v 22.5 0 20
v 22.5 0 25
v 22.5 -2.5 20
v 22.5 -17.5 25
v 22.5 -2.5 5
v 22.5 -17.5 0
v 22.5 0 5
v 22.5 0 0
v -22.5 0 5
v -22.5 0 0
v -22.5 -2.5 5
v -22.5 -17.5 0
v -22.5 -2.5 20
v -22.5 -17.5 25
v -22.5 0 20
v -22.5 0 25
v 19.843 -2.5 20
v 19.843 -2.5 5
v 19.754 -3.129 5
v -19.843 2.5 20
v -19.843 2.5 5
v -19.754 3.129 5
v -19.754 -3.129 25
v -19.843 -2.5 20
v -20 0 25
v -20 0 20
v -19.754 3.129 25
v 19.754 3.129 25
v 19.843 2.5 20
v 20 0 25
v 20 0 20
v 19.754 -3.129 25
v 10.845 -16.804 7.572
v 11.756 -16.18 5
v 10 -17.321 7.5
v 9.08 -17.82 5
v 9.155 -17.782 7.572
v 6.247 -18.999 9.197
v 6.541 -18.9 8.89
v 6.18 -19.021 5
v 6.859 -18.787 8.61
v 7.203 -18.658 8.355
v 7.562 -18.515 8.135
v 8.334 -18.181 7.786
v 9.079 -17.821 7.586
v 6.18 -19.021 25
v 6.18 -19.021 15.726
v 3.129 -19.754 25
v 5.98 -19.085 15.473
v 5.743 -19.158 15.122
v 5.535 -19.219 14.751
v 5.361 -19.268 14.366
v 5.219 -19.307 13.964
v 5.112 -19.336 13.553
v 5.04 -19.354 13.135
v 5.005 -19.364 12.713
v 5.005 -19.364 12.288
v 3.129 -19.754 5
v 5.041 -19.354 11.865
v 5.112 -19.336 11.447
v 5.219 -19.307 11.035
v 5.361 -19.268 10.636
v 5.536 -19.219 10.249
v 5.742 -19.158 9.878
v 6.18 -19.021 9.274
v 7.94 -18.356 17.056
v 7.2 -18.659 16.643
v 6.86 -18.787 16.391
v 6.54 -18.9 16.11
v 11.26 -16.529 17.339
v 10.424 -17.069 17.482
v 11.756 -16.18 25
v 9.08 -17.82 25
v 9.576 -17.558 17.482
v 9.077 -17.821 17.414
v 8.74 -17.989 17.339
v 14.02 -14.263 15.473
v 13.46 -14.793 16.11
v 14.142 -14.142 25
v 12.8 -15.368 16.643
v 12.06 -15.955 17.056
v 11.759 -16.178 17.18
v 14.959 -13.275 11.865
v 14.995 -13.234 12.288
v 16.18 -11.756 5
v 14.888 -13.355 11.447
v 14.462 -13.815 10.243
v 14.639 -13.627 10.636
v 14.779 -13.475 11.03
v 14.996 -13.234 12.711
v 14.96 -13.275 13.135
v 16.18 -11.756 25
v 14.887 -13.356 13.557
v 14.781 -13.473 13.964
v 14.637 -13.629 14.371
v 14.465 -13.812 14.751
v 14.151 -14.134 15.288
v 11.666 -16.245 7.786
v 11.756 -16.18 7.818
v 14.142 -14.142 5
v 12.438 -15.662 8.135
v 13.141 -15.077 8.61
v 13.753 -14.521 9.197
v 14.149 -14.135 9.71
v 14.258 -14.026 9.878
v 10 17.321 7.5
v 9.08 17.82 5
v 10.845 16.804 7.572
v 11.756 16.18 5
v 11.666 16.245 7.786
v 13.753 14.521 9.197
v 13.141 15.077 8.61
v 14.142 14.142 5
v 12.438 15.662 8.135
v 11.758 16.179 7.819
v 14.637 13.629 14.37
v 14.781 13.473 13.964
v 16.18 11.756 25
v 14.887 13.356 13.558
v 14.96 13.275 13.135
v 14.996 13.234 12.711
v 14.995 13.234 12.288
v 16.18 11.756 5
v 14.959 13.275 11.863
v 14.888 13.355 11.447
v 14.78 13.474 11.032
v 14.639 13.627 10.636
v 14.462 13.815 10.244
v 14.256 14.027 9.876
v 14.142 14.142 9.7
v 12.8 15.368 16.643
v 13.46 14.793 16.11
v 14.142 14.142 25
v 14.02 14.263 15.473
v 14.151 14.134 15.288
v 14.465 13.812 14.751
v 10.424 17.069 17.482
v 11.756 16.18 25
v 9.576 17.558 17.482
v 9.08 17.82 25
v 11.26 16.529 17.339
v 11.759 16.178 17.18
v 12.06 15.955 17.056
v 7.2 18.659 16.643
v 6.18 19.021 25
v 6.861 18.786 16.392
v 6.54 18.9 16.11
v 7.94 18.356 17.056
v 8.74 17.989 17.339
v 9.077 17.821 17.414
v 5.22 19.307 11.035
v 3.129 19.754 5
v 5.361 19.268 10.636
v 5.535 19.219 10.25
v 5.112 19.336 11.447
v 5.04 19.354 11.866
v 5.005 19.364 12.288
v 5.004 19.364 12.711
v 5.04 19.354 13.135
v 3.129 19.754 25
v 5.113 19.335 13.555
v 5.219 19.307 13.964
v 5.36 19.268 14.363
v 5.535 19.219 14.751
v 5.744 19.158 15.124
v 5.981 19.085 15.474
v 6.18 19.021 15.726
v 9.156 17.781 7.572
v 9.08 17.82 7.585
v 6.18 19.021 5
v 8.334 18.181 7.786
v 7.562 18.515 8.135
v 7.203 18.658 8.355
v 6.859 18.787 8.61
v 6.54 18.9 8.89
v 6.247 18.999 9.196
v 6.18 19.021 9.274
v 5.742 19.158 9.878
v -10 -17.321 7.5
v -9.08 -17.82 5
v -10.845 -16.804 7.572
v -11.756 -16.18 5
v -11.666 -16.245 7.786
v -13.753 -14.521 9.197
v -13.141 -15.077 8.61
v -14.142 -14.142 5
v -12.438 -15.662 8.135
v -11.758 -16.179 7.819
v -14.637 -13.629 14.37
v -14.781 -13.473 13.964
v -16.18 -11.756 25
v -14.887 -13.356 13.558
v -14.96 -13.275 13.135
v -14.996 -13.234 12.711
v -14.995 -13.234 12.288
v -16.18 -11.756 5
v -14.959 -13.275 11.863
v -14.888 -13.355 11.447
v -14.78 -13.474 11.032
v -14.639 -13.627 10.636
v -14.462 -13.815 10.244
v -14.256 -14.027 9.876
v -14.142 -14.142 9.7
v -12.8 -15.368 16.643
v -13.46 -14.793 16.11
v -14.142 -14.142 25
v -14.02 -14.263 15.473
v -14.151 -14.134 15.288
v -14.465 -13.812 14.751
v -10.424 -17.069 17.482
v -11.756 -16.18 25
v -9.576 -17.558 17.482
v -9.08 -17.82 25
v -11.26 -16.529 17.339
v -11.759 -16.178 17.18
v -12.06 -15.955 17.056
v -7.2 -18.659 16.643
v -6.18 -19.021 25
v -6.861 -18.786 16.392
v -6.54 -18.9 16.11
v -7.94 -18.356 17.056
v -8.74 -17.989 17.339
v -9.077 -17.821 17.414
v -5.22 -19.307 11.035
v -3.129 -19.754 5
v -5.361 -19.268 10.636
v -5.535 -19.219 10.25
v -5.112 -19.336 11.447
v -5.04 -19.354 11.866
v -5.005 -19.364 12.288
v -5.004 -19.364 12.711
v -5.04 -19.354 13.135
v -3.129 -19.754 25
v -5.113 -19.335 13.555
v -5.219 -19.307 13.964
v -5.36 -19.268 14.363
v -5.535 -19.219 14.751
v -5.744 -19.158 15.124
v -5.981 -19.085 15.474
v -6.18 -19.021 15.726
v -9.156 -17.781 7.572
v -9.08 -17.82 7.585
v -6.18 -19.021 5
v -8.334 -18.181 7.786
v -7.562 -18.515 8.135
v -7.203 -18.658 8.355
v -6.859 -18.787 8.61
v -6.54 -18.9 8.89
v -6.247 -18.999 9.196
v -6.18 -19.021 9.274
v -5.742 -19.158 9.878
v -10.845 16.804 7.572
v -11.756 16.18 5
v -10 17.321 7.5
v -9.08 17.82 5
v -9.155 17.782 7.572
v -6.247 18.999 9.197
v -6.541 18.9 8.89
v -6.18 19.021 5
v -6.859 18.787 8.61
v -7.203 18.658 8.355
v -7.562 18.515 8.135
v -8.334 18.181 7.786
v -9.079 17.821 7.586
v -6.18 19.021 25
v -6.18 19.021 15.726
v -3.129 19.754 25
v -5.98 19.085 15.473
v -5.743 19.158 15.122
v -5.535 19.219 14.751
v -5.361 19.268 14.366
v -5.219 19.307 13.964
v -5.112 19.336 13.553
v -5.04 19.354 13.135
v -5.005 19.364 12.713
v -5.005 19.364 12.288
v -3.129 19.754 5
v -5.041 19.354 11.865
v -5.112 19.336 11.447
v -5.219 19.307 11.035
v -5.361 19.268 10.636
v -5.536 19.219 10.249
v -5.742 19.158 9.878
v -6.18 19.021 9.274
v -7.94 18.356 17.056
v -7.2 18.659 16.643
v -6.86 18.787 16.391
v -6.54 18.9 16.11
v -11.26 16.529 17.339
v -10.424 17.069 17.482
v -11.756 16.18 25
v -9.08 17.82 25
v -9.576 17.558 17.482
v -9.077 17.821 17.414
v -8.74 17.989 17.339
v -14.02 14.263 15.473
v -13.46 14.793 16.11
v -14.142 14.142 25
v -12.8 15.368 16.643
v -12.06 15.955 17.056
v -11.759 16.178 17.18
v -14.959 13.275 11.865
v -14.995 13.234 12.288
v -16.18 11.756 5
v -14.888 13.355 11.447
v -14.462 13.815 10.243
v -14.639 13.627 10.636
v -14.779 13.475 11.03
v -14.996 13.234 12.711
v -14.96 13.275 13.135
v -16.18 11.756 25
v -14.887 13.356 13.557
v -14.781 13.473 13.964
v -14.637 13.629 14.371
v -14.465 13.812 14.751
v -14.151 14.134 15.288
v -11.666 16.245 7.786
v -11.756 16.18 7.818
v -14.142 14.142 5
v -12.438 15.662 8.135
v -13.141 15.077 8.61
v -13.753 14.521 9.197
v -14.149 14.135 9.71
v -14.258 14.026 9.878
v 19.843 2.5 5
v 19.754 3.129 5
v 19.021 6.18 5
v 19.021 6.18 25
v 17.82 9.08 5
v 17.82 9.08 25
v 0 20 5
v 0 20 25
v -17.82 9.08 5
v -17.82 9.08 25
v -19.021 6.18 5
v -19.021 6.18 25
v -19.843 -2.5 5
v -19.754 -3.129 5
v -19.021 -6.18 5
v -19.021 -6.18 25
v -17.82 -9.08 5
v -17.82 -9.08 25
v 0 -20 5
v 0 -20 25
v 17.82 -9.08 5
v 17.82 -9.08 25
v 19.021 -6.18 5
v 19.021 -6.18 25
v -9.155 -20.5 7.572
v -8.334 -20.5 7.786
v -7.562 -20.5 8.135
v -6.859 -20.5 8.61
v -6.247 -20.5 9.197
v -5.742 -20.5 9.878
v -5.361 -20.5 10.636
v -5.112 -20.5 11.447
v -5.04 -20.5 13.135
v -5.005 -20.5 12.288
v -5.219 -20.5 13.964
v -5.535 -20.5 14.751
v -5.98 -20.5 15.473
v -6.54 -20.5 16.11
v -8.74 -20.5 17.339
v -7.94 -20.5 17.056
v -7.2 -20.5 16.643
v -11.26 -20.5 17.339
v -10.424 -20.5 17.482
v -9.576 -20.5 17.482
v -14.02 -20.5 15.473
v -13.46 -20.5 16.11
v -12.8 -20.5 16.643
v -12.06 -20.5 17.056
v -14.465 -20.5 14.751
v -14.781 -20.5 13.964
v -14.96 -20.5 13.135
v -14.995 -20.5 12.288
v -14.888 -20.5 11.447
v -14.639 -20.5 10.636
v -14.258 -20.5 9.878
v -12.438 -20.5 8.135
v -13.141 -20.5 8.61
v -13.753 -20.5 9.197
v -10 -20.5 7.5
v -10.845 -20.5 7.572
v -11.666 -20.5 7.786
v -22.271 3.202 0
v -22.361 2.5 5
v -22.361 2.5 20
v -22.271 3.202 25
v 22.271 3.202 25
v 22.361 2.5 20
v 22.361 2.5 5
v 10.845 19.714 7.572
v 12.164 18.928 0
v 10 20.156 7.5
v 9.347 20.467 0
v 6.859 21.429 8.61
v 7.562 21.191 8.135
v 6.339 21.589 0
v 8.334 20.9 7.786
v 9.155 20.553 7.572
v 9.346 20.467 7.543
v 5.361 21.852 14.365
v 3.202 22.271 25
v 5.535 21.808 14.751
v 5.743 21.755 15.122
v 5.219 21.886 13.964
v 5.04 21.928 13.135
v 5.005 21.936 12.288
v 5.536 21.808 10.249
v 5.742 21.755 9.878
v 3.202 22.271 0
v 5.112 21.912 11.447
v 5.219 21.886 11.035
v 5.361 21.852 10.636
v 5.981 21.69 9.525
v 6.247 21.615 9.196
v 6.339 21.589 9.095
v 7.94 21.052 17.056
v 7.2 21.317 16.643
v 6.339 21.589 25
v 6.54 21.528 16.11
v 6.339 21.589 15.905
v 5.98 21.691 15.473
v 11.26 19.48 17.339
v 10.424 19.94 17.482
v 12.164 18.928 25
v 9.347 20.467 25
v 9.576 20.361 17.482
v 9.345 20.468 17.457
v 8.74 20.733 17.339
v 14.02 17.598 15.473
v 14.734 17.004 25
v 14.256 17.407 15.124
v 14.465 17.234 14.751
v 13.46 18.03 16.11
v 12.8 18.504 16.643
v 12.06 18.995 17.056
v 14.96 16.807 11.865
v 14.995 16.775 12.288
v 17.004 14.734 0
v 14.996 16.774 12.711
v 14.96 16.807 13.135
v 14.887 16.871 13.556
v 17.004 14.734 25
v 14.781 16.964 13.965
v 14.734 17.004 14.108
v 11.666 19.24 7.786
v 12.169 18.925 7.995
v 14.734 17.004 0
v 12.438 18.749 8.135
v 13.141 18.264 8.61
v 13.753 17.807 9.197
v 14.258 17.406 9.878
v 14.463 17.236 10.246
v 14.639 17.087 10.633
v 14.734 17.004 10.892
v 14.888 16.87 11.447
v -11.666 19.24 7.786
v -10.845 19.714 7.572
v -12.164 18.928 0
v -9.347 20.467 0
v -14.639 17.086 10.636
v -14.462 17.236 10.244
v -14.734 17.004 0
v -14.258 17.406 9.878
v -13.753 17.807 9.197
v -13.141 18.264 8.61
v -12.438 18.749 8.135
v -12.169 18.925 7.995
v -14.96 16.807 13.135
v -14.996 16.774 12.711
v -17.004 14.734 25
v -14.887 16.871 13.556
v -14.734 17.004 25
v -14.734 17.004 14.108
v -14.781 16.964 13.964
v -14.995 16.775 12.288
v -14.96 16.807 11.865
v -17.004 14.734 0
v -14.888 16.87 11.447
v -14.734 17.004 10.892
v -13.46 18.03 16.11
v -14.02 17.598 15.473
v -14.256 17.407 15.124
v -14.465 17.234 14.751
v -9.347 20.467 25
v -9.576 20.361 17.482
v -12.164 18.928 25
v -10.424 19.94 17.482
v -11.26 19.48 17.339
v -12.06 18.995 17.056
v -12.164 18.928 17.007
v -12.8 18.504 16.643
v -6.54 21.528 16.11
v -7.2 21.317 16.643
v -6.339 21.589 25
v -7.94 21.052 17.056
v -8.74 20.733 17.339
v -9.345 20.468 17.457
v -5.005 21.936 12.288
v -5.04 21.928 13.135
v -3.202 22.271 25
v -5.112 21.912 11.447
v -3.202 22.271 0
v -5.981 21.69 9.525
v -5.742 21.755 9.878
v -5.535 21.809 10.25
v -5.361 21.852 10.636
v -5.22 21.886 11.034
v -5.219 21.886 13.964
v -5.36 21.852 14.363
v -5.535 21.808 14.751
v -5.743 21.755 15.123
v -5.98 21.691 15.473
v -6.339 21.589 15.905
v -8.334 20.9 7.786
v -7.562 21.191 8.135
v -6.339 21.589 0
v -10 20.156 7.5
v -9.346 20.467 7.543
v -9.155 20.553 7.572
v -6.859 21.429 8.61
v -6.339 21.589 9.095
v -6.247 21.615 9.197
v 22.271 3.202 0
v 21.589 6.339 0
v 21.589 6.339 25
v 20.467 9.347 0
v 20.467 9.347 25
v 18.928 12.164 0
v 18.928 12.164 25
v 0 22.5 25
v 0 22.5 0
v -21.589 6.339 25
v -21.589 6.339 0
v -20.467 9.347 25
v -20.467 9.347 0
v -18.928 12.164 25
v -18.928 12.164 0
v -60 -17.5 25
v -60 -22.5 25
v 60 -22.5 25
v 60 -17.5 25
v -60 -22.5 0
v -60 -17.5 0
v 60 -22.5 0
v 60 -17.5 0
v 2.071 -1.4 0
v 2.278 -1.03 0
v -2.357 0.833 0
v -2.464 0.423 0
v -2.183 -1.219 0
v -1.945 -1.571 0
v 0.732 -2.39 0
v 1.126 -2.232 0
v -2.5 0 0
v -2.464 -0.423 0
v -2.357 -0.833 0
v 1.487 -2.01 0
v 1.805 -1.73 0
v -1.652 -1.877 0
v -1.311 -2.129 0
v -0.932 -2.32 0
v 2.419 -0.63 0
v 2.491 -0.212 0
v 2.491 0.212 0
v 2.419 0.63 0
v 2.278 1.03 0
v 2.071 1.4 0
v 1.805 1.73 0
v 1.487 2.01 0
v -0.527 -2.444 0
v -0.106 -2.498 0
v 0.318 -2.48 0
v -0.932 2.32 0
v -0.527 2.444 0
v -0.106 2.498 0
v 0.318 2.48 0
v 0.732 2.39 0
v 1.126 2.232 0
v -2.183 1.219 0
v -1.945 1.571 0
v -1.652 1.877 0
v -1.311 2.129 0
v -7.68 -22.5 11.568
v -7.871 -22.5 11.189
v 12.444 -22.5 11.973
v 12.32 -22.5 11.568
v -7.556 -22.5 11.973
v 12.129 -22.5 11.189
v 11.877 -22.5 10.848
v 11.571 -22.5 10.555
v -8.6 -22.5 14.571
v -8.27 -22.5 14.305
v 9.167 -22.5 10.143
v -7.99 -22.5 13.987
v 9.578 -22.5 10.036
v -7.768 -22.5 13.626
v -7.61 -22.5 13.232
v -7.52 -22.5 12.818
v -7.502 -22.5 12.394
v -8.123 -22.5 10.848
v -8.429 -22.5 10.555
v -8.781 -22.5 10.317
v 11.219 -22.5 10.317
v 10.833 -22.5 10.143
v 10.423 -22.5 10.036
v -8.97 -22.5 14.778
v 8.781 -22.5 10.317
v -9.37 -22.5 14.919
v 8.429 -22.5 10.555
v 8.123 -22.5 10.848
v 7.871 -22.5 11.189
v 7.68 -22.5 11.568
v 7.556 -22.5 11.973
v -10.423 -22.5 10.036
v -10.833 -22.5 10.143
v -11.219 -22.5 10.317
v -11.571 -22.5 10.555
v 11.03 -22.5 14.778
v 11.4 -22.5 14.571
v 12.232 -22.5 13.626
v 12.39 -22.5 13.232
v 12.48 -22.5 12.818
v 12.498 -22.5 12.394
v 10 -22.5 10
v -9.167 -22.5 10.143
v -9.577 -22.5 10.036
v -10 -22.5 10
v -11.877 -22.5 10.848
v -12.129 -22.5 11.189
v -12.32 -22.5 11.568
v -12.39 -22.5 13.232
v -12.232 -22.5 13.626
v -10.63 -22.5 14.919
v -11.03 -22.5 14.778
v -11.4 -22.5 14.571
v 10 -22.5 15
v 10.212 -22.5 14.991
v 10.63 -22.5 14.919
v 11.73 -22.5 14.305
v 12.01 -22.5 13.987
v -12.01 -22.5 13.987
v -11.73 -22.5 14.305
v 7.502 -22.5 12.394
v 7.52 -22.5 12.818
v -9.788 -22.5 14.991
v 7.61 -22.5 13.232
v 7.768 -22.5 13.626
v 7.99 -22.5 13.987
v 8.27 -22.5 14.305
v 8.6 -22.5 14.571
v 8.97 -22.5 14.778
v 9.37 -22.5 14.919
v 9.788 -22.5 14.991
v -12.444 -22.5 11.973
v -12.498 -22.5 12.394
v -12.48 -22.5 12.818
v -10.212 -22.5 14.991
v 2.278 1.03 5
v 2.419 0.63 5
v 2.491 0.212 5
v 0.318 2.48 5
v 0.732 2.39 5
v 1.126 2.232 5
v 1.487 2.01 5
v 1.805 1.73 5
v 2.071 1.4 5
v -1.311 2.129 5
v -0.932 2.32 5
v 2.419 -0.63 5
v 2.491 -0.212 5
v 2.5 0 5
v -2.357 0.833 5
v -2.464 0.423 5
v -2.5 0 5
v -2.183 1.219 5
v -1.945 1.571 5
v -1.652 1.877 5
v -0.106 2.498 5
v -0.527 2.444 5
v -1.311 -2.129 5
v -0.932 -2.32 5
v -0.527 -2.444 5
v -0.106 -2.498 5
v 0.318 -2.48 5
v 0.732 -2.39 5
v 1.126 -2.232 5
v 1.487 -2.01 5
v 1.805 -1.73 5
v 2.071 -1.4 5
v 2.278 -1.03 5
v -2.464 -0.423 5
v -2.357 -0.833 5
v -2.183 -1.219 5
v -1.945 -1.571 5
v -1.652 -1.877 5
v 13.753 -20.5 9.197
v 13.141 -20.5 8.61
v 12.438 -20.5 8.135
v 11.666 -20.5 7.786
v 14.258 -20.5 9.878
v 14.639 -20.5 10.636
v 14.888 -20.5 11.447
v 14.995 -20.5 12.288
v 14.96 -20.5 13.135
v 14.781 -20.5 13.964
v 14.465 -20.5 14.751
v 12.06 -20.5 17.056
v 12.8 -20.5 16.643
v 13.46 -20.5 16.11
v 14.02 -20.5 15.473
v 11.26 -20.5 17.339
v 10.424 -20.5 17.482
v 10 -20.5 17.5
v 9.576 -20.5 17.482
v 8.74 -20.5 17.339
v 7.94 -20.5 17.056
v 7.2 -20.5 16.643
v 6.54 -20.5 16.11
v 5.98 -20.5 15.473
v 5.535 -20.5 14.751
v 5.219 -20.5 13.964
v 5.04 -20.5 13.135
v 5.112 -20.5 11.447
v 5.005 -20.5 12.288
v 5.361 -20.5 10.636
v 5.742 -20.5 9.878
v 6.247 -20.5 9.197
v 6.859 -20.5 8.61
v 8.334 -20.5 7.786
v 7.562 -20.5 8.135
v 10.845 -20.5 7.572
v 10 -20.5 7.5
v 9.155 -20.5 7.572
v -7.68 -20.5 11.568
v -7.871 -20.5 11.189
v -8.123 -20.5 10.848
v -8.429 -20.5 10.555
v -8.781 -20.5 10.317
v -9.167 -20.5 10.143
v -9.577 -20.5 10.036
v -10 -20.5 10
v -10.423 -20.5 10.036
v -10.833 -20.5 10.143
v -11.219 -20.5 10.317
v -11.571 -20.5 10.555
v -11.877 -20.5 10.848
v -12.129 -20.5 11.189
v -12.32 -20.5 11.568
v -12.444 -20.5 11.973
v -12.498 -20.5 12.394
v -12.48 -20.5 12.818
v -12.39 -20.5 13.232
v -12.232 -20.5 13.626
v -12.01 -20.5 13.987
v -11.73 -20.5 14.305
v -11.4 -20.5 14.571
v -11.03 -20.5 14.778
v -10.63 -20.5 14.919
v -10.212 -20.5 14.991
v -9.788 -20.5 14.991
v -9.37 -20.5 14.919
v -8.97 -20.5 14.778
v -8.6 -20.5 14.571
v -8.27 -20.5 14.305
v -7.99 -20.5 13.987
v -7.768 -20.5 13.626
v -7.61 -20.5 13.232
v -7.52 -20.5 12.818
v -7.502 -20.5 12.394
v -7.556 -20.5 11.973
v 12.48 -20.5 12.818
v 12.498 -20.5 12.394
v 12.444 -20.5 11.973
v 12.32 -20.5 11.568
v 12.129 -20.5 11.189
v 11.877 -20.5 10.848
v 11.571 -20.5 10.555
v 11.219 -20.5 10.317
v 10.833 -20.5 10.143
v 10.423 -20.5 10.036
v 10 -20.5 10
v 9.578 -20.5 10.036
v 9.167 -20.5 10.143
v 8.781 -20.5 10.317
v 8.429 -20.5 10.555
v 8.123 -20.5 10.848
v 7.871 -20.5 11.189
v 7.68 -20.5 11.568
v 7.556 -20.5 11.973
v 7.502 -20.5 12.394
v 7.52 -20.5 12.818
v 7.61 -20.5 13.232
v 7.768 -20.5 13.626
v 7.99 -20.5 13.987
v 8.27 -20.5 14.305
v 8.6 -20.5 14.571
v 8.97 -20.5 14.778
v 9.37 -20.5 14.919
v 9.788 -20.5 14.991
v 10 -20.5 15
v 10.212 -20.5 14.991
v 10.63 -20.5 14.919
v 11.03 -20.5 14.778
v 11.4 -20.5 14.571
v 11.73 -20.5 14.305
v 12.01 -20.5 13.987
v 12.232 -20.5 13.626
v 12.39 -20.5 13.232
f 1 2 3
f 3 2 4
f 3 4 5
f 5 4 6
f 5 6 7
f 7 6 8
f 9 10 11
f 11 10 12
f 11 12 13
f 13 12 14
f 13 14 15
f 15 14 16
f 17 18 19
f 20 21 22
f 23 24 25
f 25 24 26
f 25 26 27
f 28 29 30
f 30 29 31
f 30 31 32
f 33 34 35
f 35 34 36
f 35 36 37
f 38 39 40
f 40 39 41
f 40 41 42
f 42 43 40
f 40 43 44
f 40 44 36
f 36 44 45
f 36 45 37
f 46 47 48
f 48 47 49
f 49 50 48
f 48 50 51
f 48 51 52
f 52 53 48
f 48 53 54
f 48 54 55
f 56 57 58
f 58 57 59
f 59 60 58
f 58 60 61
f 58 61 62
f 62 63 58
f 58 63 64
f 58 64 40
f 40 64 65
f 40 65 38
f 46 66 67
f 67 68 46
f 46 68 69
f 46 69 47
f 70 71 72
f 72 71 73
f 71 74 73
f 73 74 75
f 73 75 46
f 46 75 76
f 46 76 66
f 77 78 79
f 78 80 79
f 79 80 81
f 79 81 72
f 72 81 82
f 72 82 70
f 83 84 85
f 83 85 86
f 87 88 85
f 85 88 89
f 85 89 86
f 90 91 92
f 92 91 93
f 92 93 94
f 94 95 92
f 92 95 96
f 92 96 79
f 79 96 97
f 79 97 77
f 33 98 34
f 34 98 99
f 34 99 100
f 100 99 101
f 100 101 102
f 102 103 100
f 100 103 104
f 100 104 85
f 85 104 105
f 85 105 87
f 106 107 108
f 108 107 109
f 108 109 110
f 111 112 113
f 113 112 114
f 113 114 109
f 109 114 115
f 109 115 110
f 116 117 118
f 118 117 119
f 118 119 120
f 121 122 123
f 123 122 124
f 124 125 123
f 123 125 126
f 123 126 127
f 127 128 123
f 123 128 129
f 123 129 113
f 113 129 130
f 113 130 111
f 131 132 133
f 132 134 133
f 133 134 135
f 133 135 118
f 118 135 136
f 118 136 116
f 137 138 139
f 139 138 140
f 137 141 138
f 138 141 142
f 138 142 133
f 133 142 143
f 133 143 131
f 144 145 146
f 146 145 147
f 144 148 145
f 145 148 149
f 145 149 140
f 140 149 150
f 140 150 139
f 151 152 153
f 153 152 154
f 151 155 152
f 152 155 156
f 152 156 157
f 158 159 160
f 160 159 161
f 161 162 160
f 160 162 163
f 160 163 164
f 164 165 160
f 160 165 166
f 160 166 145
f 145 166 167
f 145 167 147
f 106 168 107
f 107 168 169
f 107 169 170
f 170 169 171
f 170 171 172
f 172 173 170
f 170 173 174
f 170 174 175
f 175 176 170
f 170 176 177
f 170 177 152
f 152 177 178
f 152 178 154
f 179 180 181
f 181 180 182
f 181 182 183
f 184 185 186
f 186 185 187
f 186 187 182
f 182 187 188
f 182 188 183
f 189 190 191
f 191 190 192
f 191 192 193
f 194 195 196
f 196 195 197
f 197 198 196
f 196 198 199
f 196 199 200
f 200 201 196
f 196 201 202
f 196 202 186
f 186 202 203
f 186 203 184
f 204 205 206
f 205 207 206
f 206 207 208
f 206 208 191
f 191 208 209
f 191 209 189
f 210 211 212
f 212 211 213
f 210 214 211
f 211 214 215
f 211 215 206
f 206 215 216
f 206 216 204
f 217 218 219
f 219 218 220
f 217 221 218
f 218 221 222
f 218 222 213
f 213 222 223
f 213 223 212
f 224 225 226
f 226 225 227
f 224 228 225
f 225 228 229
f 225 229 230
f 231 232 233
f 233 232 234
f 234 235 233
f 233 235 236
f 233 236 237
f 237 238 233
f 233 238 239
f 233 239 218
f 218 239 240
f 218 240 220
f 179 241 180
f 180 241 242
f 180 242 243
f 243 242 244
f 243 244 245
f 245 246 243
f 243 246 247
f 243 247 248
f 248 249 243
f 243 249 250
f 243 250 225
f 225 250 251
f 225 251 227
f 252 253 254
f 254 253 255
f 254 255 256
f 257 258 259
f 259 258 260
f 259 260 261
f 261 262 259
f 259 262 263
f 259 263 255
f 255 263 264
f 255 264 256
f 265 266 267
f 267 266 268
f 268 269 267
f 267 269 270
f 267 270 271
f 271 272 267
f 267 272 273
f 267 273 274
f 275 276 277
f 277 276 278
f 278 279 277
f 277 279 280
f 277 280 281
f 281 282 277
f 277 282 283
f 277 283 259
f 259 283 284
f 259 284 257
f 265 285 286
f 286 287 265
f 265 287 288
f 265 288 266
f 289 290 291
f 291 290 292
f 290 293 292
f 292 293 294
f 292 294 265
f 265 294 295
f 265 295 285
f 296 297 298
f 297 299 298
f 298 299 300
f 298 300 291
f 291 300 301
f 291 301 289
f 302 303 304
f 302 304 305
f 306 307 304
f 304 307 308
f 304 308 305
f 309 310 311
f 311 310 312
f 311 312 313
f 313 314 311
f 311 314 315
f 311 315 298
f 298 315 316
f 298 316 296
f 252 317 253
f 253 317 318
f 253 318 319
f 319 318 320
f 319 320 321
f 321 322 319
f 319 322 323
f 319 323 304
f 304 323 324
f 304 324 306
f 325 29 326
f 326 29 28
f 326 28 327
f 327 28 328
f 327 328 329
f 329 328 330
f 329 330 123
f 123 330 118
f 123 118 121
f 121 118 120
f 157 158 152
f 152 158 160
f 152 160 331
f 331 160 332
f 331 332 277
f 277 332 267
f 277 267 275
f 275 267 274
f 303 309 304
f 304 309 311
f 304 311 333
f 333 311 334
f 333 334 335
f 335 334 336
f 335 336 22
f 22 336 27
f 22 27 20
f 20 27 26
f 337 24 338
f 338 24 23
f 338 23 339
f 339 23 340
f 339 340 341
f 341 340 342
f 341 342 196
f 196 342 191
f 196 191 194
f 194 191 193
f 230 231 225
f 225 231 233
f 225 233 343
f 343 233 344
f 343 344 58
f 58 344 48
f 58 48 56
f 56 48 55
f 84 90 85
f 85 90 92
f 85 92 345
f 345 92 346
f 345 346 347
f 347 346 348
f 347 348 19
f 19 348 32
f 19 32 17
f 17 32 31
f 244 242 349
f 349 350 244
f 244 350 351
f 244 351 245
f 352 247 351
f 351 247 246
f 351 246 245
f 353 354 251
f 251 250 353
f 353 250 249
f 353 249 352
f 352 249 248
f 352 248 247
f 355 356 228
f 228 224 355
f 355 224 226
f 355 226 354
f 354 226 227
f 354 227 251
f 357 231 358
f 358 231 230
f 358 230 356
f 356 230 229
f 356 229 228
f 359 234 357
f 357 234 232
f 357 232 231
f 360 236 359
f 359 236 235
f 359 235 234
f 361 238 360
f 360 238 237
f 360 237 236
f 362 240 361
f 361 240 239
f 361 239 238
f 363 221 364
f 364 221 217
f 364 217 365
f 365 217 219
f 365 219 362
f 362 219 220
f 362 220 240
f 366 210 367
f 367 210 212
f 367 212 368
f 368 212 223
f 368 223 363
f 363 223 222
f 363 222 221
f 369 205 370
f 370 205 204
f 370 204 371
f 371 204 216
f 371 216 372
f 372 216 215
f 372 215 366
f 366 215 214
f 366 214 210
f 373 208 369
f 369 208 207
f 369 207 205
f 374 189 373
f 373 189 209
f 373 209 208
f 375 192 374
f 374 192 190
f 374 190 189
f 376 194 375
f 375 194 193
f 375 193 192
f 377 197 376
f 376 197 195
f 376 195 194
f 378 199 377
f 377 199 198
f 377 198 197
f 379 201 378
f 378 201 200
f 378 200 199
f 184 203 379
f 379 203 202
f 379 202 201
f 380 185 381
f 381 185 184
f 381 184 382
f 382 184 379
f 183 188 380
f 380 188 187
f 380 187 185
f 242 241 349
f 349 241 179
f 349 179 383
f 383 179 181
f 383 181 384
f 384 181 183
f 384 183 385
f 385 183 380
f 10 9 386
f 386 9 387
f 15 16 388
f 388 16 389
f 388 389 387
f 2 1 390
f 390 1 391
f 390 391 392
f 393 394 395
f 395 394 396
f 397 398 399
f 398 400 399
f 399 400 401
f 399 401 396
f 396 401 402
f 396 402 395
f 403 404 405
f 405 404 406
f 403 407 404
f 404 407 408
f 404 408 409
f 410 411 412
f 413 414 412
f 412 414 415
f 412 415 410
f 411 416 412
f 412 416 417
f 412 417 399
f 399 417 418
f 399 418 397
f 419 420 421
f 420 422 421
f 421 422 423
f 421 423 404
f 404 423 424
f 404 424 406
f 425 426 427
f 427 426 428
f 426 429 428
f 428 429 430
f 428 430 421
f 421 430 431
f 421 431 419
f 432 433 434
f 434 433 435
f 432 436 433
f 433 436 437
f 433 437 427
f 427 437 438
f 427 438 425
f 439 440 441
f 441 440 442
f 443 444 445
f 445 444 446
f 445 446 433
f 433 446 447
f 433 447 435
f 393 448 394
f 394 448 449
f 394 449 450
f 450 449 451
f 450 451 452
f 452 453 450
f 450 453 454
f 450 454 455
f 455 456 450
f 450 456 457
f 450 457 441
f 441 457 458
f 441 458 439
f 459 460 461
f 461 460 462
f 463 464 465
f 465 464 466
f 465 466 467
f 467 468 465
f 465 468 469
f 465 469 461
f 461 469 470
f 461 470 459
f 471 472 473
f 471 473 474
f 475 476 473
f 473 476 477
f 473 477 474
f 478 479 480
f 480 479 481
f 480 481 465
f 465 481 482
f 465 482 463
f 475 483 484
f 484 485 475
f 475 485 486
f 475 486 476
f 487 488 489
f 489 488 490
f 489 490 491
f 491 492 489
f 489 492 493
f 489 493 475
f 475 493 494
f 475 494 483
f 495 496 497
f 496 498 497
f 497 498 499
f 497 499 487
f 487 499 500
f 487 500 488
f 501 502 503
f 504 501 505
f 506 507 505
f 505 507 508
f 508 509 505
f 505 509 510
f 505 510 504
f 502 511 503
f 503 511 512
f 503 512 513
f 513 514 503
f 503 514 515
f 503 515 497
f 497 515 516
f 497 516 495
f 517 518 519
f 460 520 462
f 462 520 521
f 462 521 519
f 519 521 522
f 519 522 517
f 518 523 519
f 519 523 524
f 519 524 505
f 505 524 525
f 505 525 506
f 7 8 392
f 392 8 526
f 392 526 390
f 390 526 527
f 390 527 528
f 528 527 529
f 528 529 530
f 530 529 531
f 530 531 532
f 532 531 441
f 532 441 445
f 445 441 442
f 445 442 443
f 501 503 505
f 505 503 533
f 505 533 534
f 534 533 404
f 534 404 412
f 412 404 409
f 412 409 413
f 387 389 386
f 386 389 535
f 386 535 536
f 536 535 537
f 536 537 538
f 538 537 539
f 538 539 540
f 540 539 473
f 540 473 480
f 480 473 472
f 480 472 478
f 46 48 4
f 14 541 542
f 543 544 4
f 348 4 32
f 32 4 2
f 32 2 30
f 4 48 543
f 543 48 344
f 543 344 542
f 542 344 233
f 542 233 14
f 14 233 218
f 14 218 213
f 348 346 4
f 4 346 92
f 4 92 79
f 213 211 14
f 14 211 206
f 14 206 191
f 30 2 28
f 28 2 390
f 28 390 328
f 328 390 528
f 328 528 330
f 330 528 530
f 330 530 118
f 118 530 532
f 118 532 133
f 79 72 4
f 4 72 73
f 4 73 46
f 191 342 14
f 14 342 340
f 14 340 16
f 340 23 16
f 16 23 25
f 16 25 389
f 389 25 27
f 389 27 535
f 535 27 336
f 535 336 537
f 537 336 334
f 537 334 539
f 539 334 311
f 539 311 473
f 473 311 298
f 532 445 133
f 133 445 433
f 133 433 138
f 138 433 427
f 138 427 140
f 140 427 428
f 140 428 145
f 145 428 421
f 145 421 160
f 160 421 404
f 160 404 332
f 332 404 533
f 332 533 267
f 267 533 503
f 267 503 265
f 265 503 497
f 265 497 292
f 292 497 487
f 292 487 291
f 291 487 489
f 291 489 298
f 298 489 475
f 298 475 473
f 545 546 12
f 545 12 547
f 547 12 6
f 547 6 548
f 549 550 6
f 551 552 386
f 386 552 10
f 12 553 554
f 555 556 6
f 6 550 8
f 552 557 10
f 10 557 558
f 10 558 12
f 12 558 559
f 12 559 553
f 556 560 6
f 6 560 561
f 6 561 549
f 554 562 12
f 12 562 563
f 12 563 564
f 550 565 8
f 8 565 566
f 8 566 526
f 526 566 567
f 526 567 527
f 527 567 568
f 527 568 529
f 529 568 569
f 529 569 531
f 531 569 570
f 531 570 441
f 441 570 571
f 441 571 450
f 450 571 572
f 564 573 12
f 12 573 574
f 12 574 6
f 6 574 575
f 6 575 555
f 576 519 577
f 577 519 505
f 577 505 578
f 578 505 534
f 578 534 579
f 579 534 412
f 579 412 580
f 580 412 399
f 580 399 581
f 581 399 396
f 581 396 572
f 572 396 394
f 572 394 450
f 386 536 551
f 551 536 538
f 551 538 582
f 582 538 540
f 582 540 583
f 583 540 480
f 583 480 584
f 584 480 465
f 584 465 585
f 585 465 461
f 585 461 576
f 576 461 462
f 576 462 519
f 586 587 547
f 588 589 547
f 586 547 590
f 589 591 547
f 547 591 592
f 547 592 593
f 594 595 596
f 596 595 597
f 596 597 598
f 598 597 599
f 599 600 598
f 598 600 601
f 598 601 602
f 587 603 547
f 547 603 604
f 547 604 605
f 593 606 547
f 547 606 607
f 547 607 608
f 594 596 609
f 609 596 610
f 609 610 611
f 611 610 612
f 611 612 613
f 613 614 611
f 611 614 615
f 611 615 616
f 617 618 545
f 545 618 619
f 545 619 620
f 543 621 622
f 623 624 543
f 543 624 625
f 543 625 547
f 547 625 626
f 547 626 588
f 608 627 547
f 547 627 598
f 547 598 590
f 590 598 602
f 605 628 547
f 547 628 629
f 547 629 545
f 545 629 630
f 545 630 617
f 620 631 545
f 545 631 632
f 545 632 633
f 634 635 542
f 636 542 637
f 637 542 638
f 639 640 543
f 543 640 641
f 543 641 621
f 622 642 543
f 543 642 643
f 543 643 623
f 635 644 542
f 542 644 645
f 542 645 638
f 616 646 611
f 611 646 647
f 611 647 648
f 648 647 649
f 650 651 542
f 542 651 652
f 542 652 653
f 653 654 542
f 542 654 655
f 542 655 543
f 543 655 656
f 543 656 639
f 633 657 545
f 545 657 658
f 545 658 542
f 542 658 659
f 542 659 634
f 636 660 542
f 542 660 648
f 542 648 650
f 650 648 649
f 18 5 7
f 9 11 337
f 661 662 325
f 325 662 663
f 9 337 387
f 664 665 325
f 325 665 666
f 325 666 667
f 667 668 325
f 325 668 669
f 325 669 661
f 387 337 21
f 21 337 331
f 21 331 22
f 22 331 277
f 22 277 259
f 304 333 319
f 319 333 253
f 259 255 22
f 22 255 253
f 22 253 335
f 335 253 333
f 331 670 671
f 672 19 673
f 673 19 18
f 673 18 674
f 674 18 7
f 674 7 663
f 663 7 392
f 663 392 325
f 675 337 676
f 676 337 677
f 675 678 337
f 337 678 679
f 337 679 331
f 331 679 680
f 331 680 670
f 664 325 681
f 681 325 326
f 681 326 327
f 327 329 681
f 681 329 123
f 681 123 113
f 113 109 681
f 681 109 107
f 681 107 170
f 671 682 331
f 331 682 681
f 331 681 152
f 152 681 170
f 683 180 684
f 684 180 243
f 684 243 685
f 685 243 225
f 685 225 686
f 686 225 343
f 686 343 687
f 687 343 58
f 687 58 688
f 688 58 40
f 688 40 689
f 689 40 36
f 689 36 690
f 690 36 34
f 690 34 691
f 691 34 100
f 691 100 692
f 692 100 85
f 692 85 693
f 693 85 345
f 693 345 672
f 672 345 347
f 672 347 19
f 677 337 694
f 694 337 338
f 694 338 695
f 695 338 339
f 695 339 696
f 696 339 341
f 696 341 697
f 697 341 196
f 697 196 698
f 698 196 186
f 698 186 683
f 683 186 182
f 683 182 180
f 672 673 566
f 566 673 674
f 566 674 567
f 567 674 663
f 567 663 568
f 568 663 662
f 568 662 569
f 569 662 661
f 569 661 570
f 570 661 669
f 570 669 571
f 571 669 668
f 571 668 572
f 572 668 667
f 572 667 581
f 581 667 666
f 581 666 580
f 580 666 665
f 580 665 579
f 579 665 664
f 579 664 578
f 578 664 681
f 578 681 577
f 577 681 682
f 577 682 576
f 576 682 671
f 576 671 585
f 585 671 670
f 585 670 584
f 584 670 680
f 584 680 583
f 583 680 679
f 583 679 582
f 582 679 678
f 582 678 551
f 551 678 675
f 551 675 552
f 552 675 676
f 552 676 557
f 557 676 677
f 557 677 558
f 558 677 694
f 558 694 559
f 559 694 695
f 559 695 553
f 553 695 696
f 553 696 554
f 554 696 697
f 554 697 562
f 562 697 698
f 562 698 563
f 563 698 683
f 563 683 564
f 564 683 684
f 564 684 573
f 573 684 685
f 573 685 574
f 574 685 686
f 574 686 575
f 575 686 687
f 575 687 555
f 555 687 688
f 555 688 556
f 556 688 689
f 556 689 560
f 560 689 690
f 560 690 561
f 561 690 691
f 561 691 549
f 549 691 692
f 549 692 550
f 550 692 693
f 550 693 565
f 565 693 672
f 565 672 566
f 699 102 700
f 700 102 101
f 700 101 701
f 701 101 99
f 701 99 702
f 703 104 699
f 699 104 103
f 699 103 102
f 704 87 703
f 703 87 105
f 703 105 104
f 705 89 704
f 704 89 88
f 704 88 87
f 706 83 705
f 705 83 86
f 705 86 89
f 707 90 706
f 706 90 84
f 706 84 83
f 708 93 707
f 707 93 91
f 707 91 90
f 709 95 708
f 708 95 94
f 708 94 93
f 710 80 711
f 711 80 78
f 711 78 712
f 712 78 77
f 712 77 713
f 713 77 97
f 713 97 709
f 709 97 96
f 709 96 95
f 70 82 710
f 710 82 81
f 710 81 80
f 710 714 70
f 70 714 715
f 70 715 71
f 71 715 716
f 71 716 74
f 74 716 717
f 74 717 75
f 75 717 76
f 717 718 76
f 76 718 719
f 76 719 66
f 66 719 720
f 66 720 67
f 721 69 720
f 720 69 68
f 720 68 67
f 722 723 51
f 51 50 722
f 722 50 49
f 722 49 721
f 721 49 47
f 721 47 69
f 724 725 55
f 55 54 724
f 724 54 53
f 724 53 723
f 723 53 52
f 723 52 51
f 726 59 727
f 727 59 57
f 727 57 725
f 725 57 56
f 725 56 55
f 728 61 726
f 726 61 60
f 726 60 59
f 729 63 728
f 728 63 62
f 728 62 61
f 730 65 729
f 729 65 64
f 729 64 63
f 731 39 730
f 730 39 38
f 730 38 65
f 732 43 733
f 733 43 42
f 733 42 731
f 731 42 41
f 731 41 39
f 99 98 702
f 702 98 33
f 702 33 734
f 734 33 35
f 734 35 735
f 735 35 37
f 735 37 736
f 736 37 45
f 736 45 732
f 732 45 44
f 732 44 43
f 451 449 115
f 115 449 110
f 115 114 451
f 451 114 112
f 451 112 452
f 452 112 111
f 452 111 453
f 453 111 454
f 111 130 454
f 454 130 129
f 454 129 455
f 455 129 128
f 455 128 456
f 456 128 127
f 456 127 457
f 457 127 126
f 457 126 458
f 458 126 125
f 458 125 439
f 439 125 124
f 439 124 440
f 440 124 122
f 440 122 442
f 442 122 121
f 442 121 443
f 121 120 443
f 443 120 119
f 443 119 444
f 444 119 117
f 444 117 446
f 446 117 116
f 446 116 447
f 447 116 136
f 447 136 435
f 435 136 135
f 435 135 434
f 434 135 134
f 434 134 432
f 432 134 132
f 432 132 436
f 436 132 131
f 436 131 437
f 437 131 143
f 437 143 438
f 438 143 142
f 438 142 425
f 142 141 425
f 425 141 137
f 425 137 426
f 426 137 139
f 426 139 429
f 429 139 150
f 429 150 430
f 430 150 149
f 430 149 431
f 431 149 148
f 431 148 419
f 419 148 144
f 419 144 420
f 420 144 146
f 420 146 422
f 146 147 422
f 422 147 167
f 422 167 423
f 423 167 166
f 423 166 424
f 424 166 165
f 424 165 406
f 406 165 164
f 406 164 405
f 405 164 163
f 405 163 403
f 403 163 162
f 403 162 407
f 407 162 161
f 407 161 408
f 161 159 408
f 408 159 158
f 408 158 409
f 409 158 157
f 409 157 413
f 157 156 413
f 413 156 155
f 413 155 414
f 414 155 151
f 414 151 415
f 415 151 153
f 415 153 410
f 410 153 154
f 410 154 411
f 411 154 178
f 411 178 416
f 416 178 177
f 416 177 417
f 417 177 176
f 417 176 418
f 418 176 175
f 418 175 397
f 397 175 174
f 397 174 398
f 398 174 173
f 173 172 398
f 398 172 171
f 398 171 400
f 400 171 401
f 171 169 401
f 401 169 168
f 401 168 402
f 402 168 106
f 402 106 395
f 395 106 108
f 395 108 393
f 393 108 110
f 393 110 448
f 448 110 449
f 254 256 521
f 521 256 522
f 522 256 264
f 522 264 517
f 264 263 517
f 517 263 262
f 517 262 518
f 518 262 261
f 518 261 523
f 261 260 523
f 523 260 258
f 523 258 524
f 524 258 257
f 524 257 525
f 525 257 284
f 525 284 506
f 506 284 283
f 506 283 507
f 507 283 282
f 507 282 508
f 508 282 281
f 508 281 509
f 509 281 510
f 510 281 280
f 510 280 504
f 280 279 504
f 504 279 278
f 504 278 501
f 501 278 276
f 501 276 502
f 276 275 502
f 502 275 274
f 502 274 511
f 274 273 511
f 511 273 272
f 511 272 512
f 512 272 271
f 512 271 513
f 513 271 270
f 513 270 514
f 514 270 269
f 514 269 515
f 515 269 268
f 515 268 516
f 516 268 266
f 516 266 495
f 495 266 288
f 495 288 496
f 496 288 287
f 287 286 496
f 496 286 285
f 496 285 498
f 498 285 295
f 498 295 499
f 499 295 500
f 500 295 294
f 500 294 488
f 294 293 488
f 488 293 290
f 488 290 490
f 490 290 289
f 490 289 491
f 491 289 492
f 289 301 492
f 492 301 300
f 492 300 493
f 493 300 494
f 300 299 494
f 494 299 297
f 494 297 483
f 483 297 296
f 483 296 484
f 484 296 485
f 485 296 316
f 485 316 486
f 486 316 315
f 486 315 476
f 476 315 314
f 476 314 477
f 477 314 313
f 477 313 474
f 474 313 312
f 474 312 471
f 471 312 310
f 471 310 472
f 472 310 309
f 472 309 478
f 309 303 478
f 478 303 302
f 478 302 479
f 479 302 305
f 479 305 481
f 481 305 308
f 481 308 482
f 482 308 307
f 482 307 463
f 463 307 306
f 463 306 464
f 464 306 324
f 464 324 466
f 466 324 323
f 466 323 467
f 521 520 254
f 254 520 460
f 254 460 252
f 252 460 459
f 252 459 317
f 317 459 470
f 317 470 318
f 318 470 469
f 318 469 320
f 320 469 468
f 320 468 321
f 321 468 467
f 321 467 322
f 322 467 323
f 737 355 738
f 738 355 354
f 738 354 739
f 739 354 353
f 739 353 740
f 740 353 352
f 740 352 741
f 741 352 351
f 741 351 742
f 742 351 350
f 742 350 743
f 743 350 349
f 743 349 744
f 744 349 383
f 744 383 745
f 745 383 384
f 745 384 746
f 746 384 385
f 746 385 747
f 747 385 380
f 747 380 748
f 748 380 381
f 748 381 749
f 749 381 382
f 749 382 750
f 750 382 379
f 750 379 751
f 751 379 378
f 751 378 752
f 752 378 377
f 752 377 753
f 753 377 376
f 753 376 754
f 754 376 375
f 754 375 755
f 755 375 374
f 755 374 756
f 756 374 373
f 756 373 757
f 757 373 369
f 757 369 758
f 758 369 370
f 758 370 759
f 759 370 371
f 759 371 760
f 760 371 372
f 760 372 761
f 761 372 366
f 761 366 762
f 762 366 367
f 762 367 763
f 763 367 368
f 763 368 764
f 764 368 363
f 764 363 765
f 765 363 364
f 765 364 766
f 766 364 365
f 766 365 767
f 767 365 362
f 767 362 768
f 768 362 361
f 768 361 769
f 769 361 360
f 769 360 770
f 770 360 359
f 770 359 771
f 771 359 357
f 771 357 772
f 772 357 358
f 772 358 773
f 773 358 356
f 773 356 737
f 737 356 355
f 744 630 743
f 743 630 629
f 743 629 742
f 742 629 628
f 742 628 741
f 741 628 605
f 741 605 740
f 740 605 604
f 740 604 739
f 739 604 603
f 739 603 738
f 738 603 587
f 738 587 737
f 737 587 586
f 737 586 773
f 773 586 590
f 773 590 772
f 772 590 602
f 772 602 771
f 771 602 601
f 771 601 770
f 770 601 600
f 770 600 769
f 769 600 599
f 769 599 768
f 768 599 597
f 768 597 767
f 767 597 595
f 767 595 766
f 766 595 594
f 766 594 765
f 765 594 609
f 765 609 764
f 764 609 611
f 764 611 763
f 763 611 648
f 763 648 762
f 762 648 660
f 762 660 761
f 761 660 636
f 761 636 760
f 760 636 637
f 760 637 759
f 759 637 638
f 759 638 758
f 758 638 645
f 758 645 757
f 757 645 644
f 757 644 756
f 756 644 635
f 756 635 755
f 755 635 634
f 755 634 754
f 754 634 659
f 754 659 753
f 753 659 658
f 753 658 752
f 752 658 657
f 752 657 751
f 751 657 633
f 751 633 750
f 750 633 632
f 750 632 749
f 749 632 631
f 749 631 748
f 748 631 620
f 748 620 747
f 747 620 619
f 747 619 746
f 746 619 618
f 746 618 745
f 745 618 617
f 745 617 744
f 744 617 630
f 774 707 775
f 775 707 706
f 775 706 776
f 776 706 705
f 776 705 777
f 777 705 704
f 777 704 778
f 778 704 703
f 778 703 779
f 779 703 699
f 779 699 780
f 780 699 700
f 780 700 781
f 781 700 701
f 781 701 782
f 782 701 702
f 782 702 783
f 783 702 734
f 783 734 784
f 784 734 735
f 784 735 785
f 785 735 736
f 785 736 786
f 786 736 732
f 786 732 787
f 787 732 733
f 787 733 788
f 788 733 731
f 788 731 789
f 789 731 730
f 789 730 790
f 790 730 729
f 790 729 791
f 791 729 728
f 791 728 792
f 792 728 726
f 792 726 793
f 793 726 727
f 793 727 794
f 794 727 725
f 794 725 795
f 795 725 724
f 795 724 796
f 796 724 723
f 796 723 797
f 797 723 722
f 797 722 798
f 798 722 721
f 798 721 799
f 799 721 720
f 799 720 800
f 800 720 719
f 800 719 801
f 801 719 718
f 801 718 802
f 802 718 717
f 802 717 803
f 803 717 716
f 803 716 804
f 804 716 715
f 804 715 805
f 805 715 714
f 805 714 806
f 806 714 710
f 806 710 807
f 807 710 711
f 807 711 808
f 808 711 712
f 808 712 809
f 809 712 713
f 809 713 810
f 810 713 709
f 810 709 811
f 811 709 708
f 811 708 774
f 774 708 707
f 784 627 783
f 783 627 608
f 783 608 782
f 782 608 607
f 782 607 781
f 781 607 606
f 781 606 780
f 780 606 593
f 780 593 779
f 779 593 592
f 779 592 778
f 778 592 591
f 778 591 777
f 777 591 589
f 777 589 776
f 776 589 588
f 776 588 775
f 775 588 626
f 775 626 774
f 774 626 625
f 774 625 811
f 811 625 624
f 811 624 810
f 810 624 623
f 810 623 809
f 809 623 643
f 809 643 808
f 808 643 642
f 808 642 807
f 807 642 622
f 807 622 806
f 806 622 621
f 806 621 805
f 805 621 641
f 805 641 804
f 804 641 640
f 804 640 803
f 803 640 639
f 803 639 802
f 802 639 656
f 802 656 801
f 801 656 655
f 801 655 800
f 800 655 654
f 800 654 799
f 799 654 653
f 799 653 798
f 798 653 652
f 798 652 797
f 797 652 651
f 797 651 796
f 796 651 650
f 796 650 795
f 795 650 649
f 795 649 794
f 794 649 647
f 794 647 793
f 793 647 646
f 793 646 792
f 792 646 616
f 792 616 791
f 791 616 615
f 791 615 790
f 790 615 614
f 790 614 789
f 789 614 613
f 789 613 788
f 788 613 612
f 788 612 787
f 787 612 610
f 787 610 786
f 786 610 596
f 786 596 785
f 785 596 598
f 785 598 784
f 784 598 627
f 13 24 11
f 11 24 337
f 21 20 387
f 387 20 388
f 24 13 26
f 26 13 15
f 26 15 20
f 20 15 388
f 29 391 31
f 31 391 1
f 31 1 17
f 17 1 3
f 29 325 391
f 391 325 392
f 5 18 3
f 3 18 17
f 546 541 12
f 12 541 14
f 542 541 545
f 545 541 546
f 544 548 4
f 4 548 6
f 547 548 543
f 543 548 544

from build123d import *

# Parameters (mm, degrees)
SKETCH2_R           = 22.5
BOSS_EXTRUDE3_DEPTH = 25
SKETCH6_W           = 45
SKETCH6_H           = 22.5
BOSS_EXTRUDE4_DEPTH = 25
SKETCH4_R           = 20
CUT_EXTRUDE1_DEPTH  = 20
SKETCH5_R           = 2.5
CUT_EXTRUDE2_DEPTH  = 5
SKETCH7_R           = 5
CUT_EXTRUDE6_DEPTH  = 46
SKETCH9_R           = 5
SKETCH9_R_2         = 2.5
BOSS_EXTRUDE5_DEPTH = 2
SKETCH14_W          = 15
SKETCH14_H          = 5
CUT_EXTRUDE8_DEPTH  = 46.0000001
SKETCH15_W          = 25
SKETCH15_H          = 5
BOSS_EXTRUDE6_DEPTH = 37.5
SKETCH16_W          = 25
SKETCH16_H          = 5
BOSS_EXTRUDE7_DEPTH = 37.5


with BuildPart() as part:
    # Sketch2 → Boss-Extrude3 (new body)
    with BuildSketch(Plane.XY):
        Circle(SKETCH2_R)
    extrude(amount=BOSS_EXTRUDE3_DEPTH)

    # Sketch6 → Boss-Extrude4 (add)
    with BuildSketch(Plane.XY):
        with Locations((0, -11.25)):
            Rectangle(SKETCH6_W, SKETCH6_H)
    extrude(amount=BOSS_EXTRUDE4_DEPTH)

    # Sketch4 → Cut-Extrude1 (cut)
    with BuildSketch(Plane.XY.offset(25)):
        Circle(SKETCH4_R)
    extrude(amount=-CUT_EXTRUDE1_DEPTH, mode=Mode.SUBTRACT)

    # Sketch5 → Cut-Extrude2 (cut)
    with BuildSketch(Plane(origin=(0, 0, 0), x_dir=(-1, 0, 0), z_dir=(0, 0, -1))):
        Circle(SKETCH5_R)
    extrude(amount=-CUT_EXTRUDE2_DEPTH, mode=Mode.SUBTRACT)

    # Sketch7 → Cut-Extrude6 (cut, through all)
    with BuildSketch(Plane.XZ.offset(22.5)):
        with Locations((-10, 12.5)):
            Circle(SKETCH7_R)
        with Locations((10, 12.5)):
            Circle(SKETCH7_R)
    extrude(amount=-CUT_EXTRUDE6_DEPTH, mode=Mode.SUBTRACT)

    # Sketch9 → Boss-Extrude5 (add)
    with BuildSketch(Plane.XZ.offset(22.5)):
        with Locations((-10, 12.5)):
            Circle(SKETCH9_R)
        with Locations((-10, 12.5)):
            Circle(SKETCH9_R_2, mode=Mode.SUBTRACT)
        with Locations((10, 12.5)):
            Circle(SKETCH9_R)
        with Locations((10, 12.5)):
            Circle(SKETCH9_R_2, mode=Mode.SUBTRACT)
    extrude(amount=-BOSS_EXTRUDE5_DEPTH)

    # Sketch14 → Cut-Extrude8 (cut, through all)
    with BuildSketch(Plane(origin=(22.5, 0, 0), x_dir=(0, 0, -1), z_dir=(1, 0, 0))):
        with Locations((-12.5, 0)):
            Rectangle(SKETCH14_W, SKETCH14_H)
    extrude(amount=-CUT_EXTRUDE8_DEPTH, mode=Mode.SUBTRACT)

    # Sketch15 → Boss-Extrude6 (add)
    with BuildSketch(Plane.ZY.offset(22.5)):
        with Locations((12.5, -20)):
            Rectangle(SKETCH15_W, SKETCH15_H)
    extrude(amount=BOSS_EXTRUDE6_DEPTH)

    # Sketch16 → Boss-Extrude7 (add)
    with BuildSketch(Plane(origin=(22.5, 0, 0), x_dir=(0, 0, -1), z_dir=(1, 0, 0))):
        with Locations((-12.5, -20)):
            Rectangle(SKETCH16_W, SKETCH16_H)
    extrude(amount=BOSS_EXTRUDE7_DEPTH)


solid = part.part
